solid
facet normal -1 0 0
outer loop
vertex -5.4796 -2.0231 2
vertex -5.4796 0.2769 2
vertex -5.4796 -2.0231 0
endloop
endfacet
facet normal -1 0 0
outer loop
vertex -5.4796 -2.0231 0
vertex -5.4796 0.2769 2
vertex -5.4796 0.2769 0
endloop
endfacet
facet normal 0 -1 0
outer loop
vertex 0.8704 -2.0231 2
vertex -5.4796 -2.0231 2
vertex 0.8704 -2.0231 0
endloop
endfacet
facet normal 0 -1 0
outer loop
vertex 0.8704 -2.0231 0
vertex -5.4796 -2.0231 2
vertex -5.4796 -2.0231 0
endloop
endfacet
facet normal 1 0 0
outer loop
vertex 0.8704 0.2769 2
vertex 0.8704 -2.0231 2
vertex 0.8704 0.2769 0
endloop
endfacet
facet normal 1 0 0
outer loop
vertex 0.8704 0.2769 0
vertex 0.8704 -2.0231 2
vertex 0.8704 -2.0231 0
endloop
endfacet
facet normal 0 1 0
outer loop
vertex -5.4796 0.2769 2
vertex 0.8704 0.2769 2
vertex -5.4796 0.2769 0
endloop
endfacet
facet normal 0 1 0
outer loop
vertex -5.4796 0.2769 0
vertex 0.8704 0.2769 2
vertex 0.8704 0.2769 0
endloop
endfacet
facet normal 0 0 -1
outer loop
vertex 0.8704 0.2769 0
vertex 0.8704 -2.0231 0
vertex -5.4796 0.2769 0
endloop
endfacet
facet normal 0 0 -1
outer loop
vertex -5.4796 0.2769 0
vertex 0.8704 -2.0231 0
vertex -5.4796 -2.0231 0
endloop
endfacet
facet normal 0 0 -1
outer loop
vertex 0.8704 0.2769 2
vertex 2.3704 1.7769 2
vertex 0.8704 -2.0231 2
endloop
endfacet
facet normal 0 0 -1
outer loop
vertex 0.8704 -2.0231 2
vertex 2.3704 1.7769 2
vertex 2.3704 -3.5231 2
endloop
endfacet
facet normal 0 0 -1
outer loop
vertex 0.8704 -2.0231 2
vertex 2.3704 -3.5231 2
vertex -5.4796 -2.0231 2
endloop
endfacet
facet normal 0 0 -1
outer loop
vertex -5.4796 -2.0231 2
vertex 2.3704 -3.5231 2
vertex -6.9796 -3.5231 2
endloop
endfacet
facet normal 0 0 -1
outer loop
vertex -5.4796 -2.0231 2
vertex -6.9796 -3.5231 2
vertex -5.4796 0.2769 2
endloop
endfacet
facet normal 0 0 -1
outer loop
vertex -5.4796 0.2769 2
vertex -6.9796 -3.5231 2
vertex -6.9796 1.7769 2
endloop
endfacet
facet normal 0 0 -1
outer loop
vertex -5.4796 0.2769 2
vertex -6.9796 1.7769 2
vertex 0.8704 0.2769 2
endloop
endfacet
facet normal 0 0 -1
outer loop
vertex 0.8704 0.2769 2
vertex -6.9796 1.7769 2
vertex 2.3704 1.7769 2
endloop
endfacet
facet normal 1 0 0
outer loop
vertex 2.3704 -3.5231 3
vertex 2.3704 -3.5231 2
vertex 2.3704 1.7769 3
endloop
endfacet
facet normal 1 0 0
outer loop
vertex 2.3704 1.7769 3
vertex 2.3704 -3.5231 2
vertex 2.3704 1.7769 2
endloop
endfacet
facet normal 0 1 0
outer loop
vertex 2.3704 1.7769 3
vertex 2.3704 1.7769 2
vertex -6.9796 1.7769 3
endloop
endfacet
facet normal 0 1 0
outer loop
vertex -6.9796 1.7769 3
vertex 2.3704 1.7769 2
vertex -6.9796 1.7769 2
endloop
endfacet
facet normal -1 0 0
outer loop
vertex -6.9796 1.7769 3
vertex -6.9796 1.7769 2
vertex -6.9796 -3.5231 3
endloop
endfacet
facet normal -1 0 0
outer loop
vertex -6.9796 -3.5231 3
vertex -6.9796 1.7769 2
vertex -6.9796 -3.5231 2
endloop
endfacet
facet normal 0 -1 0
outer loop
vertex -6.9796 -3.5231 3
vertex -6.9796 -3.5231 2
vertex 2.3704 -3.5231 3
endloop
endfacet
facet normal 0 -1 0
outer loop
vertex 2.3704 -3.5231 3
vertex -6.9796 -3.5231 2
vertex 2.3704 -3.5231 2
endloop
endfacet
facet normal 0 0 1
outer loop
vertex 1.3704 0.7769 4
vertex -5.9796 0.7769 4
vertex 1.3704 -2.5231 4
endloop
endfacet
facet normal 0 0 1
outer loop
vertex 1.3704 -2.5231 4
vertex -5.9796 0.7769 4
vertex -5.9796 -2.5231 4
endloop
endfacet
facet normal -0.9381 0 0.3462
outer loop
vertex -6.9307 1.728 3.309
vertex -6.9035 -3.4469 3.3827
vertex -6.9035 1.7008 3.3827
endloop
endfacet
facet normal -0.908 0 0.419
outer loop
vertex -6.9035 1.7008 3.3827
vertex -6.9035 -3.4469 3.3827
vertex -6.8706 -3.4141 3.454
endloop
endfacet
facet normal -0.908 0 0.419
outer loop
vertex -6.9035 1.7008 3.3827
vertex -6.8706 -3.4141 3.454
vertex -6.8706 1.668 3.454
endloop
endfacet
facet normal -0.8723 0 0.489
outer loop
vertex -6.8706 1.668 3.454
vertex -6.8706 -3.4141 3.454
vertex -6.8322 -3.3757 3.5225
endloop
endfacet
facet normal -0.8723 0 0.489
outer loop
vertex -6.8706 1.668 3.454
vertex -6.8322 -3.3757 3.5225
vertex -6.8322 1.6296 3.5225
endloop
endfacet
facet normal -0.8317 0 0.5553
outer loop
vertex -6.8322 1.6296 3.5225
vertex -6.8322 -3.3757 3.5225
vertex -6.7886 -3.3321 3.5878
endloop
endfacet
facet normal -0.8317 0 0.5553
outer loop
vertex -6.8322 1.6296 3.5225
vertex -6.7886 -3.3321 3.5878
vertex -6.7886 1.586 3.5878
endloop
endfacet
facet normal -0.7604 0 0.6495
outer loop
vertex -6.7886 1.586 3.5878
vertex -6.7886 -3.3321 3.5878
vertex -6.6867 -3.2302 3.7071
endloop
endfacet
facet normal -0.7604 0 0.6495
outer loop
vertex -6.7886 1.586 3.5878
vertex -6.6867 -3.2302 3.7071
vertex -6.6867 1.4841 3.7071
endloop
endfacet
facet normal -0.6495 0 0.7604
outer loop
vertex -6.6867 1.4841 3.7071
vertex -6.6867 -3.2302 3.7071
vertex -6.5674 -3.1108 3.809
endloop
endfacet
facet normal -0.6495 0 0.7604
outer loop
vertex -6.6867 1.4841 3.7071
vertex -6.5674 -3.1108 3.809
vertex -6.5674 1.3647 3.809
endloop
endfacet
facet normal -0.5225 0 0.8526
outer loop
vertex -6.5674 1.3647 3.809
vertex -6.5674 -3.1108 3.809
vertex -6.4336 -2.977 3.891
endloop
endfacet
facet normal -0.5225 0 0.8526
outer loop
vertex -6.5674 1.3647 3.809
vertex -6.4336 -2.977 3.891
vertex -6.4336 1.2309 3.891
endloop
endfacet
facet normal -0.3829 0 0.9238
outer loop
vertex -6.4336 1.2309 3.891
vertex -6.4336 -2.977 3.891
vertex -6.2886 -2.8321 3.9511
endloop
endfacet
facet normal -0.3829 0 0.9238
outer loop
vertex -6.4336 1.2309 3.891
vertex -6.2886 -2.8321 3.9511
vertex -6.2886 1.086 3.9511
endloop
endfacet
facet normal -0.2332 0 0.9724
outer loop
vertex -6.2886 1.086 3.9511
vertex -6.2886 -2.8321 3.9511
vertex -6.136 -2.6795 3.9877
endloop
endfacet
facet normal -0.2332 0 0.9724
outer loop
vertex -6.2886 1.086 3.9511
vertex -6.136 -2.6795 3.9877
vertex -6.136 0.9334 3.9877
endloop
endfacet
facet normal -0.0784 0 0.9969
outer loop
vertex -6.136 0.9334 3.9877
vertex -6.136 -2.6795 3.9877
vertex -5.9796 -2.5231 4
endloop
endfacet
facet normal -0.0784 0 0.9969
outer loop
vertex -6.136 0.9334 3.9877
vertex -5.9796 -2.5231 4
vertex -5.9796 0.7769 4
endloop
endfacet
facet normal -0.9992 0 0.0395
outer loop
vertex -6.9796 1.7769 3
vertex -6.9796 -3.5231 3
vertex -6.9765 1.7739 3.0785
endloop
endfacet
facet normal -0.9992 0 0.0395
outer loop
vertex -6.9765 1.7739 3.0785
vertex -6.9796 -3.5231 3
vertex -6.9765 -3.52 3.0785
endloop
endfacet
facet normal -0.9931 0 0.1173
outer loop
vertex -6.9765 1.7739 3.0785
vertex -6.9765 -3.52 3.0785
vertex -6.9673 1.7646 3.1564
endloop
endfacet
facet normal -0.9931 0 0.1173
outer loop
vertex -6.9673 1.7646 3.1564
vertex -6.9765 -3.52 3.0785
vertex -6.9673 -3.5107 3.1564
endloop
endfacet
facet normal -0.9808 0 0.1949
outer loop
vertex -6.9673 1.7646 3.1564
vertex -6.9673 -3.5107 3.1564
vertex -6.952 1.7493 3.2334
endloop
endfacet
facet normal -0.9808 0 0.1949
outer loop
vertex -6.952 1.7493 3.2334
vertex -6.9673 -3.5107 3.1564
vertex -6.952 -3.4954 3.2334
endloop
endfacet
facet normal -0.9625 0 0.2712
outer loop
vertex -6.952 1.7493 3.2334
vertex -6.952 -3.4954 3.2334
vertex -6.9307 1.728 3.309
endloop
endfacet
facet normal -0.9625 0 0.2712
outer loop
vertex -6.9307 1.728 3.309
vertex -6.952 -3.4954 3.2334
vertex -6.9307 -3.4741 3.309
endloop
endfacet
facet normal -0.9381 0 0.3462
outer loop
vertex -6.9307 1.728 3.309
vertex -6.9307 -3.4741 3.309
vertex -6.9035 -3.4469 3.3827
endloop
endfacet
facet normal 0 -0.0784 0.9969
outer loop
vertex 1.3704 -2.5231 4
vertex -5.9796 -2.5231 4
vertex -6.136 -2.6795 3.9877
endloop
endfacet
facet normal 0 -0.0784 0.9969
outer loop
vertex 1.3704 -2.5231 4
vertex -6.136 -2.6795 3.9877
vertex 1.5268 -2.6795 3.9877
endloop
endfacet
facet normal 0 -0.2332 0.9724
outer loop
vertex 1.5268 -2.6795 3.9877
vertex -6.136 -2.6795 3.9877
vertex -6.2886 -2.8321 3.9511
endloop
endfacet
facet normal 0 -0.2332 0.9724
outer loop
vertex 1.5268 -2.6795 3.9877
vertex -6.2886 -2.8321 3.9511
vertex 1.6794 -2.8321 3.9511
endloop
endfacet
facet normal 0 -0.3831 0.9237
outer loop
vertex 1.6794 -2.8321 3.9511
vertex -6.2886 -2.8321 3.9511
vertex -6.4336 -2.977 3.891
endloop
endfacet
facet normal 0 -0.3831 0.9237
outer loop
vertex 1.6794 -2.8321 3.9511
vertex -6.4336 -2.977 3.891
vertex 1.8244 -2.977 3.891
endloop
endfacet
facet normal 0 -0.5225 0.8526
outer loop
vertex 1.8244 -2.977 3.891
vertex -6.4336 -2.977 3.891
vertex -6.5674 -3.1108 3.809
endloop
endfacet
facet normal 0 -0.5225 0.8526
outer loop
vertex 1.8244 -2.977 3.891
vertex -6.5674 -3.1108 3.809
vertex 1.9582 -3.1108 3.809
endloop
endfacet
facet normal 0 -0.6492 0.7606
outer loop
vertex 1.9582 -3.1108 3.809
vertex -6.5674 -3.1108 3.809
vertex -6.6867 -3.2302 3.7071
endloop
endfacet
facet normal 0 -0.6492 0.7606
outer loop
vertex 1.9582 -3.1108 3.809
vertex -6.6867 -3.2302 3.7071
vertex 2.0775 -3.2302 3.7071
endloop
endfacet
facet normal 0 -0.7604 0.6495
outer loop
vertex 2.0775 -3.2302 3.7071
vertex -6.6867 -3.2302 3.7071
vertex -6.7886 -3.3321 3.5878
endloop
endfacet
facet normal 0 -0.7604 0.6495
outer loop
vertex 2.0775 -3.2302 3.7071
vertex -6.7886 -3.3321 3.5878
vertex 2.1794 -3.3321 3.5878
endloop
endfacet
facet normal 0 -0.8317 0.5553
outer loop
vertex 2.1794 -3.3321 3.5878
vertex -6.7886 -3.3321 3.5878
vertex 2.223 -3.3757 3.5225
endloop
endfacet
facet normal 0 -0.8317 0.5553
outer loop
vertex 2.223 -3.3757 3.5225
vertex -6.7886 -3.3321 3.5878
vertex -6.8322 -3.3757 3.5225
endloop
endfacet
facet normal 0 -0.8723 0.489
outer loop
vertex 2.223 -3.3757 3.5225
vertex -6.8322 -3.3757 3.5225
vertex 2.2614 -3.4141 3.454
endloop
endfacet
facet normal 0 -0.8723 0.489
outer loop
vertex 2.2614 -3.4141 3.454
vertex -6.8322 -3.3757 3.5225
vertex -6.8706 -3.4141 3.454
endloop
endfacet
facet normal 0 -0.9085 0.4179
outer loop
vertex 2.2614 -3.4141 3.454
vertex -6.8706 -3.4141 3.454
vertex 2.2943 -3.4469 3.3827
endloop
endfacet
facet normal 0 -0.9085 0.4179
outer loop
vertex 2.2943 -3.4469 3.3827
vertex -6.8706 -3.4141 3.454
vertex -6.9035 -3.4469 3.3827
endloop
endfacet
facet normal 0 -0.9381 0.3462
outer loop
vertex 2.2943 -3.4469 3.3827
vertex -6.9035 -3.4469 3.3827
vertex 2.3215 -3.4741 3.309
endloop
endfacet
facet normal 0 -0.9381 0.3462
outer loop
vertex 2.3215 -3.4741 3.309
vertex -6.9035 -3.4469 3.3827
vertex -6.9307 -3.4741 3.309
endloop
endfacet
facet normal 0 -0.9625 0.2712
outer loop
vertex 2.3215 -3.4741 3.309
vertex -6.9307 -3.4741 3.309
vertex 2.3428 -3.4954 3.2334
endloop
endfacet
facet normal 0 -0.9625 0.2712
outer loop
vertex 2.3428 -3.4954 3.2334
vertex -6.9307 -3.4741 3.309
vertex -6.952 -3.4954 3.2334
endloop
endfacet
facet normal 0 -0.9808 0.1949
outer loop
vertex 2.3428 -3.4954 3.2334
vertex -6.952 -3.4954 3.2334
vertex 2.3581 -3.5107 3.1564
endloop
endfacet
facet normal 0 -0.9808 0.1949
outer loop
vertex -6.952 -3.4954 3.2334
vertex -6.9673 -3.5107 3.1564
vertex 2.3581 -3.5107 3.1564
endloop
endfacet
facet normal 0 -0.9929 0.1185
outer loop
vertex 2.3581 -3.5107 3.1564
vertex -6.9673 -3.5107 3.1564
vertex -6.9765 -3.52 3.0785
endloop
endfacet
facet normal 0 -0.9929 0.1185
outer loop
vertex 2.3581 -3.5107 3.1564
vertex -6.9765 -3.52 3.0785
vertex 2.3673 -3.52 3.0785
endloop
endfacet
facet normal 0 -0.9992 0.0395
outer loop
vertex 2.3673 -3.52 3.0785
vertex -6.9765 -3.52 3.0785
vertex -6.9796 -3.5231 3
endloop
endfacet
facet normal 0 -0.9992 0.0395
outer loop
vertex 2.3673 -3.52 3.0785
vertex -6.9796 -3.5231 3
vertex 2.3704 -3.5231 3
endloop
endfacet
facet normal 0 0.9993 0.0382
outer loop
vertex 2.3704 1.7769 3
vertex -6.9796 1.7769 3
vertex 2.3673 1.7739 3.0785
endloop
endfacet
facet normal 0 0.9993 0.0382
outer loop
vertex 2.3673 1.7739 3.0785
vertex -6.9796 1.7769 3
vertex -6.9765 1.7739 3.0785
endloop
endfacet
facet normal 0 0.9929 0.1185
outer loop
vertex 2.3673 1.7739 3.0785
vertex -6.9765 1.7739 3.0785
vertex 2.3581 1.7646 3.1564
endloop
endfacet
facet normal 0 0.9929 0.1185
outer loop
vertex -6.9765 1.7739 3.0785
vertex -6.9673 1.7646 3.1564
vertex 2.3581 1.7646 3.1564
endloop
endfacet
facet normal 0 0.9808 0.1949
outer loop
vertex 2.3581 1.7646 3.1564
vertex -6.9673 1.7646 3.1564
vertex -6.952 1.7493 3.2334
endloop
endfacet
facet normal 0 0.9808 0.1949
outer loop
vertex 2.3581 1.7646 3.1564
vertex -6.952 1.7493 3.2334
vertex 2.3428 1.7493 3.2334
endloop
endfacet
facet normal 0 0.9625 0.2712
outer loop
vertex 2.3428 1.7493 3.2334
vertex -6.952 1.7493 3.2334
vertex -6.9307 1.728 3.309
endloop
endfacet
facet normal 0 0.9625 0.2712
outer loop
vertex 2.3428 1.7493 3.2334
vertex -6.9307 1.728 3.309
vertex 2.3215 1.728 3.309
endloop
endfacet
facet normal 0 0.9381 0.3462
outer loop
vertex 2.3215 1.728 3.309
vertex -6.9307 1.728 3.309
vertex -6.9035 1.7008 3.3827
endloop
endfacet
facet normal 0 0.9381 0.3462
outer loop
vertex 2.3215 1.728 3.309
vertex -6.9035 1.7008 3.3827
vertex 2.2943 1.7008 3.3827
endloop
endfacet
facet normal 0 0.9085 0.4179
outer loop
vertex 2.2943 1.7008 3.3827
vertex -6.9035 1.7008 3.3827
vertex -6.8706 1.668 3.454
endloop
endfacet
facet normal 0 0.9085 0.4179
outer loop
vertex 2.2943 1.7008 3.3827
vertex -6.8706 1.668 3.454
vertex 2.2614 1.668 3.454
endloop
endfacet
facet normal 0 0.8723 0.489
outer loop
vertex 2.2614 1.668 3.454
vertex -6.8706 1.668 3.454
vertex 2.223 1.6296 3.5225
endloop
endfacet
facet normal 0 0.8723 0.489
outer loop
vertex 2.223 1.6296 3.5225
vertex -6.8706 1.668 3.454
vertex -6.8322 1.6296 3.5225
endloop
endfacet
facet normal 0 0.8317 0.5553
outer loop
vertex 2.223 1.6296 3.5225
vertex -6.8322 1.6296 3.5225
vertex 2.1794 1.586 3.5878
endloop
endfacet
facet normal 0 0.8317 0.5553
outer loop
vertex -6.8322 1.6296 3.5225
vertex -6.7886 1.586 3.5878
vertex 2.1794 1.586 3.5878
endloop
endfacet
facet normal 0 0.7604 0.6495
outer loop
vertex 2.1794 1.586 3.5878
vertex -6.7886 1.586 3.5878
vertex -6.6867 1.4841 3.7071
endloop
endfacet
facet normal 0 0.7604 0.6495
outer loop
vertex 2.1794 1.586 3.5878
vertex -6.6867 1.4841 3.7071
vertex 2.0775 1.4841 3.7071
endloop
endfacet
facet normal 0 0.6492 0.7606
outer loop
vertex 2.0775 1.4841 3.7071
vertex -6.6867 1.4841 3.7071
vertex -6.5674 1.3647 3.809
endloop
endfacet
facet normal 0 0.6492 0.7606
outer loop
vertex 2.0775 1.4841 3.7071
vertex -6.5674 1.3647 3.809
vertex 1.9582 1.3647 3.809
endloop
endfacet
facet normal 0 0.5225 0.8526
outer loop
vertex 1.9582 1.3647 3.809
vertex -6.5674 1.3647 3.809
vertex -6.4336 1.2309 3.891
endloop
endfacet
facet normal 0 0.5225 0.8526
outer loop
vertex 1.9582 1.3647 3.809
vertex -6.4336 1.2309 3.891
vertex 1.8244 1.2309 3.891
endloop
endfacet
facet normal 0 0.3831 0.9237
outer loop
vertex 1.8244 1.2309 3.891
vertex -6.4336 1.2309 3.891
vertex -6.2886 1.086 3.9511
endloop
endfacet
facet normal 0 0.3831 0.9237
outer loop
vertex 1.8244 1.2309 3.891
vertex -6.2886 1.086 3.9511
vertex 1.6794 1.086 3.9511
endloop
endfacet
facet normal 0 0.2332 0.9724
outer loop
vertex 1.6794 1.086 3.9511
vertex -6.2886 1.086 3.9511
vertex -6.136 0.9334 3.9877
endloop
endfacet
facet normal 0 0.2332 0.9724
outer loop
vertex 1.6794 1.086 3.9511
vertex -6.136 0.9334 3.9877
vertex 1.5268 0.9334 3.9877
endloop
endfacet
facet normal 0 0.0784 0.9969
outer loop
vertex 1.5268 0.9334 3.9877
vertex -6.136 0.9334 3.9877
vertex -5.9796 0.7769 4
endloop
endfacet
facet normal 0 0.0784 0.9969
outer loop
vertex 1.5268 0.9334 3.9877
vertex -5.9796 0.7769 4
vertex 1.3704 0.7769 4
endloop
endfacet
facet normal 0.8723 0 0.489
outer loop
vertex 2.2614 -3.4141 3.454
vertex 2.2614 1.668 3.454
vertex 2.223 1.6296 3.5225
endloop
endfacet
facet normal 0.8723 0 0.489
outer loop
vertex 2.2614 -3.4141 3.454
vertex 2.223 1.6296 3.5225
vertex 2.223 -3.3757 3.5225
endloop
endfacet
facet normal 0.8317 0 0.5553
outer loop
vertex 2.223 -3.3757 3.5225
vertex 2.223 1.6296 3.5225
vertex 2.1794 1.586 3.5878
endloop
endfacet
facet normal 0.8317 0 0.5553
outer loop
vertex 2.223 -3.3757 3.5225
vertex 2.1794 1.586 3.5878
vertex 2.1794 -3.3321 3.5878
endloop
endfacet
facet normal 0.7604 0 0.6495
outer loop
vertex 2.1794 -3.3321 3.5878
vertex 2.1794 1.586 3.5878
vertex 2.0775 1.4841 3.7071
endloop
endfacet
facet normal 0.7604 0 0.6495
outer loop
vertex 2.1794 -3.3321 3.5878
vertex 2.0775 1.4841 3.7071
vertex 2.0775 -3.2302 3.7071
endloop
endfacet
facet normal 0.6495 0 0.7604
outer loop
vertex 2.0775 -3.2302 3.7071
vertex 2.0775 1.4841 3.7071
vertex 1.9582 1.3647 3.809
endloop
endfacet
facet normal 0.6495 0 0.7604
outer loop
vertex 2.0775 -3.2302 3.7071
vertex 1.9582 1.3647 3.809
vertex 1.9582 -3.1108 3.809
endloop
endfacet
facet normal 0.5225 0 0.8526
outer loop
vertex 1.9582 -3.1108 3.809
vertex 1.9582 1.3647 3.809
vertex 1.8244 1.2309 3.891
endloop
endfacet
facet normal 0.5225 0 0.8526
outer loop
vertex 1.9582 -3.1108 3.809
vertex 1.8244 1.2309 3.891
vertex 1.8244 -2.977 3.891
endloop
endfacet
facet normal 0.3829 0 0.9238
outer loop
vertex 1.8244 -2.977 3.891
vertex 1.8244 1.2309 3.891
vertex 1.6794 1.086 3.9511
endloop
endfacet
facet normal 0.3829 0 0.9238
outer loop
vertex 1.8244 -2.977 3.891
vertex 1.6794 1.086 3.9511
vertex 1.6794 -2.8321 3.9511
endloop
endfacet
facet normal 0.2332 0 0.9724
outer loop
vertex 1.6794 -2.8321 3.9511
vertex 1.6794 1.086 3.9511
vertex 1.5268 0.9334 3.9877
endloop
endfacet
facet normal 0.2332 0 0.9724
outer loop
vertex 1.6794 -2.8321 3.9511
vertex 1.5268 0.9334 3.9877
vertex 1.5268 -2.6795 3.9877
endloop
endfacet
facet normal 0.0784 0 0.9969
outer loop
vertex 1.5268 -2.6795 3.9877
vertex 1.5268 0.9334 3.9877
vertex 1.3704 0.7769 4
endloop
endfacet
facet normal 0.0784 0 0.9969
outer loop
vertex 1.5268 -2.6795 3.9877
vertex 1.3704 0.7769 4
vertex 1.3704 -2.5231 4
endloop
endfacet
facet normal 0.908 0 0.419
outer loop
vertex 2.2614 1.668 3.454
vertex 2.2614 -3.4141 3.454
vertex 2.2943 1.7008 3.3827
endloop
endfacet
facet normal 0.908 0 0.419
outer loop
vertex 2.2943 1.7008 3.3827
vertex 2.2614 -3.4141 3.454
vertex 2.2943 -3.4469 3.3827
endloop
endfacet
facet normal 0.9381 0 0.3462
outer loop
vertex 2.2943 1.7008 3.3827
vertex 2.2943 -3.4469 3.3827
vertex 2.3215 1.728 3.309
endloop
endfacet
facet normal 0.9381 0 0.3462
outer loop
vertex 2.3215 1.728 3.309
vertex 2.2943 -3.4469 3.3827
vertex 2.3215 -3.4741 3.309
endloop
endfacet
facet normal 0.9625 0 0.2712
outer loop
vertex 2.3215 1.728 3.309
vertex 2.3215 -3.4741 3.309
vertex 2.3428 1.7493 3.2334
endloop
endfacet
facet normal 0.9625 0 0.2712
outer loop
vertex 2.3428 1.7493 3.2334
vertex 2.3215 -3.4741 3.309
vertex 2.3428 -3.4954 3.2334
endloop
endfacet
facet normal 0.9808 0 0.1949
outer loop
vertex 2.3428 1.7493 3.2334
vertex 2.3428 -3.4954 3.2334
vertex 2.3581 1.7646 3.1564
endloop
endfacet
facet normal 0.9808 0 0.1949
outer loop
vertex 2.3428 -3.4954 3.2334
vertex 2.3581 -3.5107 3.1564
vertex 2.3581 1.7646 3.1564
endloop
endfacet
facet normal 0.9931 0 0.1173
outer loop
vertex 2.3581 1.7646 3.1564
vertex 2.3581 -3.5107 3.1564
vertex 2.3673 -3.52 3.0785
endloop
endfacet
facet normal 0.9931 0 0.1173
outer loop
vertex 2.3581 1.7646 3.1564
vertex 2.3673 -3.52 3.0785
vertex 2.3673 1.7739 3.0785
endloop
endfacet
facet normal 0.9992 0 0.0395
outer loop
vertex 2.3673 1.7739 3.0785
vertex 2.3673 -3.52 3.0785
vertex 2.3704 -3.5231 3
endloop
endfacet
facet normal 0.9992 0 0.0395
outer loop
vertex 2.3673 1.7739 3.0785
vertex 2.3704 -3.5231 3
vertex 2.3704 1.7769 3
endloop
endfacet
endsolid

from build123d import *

# Parameters (mm, degrees)
SKETCH2_W           = 6.35
SKETCH2_H           = 2.3
BOSS_EXTRUDE1_DEPTH = 2
SKETCH4_W           = 9.35
SKETCH4_H           = 5.3
BOSS_EXTRUDE3_DEPTH = 2
FILLET1_R           = 1


with BuildPart() as part:
    # Sketch2 → Boss-Extrude1 (new body)
    with BuildSketch(Plane.XY):
        with Locations((-2.304595016, -0.87305296)):
            Rectangle(SKETCH2_W, SKETCH2_H)
    extrude(amount=BOSS_EXTRUDE1_DEPTH)

    # Sketch4 → Boss-Extrude3 (add)
    with BuildSketch(Plane.XY.offset(2)):
        with Locations((-2.304595016, -0.87305296)):
            Rectangle(SKETCH4_W, SKETCH4_H)
    extrude(amount=BOSS_EXTRUDE3_DEPTH)

    # Fillet1
    fillet1_edges = [part.edges().sort_by_distance(p)[0] for p in [
        (2.370404984, -0.87305296, 4),
        (-2.304595016, 1.77694704, 4),
        (-6.979595016, -0.87305296, 4),
        (-2.304595016, -3.52305296, 4),
    ]]
    fillet(fillet1_edges, radius=FILLET1_R)


solid = part.part
